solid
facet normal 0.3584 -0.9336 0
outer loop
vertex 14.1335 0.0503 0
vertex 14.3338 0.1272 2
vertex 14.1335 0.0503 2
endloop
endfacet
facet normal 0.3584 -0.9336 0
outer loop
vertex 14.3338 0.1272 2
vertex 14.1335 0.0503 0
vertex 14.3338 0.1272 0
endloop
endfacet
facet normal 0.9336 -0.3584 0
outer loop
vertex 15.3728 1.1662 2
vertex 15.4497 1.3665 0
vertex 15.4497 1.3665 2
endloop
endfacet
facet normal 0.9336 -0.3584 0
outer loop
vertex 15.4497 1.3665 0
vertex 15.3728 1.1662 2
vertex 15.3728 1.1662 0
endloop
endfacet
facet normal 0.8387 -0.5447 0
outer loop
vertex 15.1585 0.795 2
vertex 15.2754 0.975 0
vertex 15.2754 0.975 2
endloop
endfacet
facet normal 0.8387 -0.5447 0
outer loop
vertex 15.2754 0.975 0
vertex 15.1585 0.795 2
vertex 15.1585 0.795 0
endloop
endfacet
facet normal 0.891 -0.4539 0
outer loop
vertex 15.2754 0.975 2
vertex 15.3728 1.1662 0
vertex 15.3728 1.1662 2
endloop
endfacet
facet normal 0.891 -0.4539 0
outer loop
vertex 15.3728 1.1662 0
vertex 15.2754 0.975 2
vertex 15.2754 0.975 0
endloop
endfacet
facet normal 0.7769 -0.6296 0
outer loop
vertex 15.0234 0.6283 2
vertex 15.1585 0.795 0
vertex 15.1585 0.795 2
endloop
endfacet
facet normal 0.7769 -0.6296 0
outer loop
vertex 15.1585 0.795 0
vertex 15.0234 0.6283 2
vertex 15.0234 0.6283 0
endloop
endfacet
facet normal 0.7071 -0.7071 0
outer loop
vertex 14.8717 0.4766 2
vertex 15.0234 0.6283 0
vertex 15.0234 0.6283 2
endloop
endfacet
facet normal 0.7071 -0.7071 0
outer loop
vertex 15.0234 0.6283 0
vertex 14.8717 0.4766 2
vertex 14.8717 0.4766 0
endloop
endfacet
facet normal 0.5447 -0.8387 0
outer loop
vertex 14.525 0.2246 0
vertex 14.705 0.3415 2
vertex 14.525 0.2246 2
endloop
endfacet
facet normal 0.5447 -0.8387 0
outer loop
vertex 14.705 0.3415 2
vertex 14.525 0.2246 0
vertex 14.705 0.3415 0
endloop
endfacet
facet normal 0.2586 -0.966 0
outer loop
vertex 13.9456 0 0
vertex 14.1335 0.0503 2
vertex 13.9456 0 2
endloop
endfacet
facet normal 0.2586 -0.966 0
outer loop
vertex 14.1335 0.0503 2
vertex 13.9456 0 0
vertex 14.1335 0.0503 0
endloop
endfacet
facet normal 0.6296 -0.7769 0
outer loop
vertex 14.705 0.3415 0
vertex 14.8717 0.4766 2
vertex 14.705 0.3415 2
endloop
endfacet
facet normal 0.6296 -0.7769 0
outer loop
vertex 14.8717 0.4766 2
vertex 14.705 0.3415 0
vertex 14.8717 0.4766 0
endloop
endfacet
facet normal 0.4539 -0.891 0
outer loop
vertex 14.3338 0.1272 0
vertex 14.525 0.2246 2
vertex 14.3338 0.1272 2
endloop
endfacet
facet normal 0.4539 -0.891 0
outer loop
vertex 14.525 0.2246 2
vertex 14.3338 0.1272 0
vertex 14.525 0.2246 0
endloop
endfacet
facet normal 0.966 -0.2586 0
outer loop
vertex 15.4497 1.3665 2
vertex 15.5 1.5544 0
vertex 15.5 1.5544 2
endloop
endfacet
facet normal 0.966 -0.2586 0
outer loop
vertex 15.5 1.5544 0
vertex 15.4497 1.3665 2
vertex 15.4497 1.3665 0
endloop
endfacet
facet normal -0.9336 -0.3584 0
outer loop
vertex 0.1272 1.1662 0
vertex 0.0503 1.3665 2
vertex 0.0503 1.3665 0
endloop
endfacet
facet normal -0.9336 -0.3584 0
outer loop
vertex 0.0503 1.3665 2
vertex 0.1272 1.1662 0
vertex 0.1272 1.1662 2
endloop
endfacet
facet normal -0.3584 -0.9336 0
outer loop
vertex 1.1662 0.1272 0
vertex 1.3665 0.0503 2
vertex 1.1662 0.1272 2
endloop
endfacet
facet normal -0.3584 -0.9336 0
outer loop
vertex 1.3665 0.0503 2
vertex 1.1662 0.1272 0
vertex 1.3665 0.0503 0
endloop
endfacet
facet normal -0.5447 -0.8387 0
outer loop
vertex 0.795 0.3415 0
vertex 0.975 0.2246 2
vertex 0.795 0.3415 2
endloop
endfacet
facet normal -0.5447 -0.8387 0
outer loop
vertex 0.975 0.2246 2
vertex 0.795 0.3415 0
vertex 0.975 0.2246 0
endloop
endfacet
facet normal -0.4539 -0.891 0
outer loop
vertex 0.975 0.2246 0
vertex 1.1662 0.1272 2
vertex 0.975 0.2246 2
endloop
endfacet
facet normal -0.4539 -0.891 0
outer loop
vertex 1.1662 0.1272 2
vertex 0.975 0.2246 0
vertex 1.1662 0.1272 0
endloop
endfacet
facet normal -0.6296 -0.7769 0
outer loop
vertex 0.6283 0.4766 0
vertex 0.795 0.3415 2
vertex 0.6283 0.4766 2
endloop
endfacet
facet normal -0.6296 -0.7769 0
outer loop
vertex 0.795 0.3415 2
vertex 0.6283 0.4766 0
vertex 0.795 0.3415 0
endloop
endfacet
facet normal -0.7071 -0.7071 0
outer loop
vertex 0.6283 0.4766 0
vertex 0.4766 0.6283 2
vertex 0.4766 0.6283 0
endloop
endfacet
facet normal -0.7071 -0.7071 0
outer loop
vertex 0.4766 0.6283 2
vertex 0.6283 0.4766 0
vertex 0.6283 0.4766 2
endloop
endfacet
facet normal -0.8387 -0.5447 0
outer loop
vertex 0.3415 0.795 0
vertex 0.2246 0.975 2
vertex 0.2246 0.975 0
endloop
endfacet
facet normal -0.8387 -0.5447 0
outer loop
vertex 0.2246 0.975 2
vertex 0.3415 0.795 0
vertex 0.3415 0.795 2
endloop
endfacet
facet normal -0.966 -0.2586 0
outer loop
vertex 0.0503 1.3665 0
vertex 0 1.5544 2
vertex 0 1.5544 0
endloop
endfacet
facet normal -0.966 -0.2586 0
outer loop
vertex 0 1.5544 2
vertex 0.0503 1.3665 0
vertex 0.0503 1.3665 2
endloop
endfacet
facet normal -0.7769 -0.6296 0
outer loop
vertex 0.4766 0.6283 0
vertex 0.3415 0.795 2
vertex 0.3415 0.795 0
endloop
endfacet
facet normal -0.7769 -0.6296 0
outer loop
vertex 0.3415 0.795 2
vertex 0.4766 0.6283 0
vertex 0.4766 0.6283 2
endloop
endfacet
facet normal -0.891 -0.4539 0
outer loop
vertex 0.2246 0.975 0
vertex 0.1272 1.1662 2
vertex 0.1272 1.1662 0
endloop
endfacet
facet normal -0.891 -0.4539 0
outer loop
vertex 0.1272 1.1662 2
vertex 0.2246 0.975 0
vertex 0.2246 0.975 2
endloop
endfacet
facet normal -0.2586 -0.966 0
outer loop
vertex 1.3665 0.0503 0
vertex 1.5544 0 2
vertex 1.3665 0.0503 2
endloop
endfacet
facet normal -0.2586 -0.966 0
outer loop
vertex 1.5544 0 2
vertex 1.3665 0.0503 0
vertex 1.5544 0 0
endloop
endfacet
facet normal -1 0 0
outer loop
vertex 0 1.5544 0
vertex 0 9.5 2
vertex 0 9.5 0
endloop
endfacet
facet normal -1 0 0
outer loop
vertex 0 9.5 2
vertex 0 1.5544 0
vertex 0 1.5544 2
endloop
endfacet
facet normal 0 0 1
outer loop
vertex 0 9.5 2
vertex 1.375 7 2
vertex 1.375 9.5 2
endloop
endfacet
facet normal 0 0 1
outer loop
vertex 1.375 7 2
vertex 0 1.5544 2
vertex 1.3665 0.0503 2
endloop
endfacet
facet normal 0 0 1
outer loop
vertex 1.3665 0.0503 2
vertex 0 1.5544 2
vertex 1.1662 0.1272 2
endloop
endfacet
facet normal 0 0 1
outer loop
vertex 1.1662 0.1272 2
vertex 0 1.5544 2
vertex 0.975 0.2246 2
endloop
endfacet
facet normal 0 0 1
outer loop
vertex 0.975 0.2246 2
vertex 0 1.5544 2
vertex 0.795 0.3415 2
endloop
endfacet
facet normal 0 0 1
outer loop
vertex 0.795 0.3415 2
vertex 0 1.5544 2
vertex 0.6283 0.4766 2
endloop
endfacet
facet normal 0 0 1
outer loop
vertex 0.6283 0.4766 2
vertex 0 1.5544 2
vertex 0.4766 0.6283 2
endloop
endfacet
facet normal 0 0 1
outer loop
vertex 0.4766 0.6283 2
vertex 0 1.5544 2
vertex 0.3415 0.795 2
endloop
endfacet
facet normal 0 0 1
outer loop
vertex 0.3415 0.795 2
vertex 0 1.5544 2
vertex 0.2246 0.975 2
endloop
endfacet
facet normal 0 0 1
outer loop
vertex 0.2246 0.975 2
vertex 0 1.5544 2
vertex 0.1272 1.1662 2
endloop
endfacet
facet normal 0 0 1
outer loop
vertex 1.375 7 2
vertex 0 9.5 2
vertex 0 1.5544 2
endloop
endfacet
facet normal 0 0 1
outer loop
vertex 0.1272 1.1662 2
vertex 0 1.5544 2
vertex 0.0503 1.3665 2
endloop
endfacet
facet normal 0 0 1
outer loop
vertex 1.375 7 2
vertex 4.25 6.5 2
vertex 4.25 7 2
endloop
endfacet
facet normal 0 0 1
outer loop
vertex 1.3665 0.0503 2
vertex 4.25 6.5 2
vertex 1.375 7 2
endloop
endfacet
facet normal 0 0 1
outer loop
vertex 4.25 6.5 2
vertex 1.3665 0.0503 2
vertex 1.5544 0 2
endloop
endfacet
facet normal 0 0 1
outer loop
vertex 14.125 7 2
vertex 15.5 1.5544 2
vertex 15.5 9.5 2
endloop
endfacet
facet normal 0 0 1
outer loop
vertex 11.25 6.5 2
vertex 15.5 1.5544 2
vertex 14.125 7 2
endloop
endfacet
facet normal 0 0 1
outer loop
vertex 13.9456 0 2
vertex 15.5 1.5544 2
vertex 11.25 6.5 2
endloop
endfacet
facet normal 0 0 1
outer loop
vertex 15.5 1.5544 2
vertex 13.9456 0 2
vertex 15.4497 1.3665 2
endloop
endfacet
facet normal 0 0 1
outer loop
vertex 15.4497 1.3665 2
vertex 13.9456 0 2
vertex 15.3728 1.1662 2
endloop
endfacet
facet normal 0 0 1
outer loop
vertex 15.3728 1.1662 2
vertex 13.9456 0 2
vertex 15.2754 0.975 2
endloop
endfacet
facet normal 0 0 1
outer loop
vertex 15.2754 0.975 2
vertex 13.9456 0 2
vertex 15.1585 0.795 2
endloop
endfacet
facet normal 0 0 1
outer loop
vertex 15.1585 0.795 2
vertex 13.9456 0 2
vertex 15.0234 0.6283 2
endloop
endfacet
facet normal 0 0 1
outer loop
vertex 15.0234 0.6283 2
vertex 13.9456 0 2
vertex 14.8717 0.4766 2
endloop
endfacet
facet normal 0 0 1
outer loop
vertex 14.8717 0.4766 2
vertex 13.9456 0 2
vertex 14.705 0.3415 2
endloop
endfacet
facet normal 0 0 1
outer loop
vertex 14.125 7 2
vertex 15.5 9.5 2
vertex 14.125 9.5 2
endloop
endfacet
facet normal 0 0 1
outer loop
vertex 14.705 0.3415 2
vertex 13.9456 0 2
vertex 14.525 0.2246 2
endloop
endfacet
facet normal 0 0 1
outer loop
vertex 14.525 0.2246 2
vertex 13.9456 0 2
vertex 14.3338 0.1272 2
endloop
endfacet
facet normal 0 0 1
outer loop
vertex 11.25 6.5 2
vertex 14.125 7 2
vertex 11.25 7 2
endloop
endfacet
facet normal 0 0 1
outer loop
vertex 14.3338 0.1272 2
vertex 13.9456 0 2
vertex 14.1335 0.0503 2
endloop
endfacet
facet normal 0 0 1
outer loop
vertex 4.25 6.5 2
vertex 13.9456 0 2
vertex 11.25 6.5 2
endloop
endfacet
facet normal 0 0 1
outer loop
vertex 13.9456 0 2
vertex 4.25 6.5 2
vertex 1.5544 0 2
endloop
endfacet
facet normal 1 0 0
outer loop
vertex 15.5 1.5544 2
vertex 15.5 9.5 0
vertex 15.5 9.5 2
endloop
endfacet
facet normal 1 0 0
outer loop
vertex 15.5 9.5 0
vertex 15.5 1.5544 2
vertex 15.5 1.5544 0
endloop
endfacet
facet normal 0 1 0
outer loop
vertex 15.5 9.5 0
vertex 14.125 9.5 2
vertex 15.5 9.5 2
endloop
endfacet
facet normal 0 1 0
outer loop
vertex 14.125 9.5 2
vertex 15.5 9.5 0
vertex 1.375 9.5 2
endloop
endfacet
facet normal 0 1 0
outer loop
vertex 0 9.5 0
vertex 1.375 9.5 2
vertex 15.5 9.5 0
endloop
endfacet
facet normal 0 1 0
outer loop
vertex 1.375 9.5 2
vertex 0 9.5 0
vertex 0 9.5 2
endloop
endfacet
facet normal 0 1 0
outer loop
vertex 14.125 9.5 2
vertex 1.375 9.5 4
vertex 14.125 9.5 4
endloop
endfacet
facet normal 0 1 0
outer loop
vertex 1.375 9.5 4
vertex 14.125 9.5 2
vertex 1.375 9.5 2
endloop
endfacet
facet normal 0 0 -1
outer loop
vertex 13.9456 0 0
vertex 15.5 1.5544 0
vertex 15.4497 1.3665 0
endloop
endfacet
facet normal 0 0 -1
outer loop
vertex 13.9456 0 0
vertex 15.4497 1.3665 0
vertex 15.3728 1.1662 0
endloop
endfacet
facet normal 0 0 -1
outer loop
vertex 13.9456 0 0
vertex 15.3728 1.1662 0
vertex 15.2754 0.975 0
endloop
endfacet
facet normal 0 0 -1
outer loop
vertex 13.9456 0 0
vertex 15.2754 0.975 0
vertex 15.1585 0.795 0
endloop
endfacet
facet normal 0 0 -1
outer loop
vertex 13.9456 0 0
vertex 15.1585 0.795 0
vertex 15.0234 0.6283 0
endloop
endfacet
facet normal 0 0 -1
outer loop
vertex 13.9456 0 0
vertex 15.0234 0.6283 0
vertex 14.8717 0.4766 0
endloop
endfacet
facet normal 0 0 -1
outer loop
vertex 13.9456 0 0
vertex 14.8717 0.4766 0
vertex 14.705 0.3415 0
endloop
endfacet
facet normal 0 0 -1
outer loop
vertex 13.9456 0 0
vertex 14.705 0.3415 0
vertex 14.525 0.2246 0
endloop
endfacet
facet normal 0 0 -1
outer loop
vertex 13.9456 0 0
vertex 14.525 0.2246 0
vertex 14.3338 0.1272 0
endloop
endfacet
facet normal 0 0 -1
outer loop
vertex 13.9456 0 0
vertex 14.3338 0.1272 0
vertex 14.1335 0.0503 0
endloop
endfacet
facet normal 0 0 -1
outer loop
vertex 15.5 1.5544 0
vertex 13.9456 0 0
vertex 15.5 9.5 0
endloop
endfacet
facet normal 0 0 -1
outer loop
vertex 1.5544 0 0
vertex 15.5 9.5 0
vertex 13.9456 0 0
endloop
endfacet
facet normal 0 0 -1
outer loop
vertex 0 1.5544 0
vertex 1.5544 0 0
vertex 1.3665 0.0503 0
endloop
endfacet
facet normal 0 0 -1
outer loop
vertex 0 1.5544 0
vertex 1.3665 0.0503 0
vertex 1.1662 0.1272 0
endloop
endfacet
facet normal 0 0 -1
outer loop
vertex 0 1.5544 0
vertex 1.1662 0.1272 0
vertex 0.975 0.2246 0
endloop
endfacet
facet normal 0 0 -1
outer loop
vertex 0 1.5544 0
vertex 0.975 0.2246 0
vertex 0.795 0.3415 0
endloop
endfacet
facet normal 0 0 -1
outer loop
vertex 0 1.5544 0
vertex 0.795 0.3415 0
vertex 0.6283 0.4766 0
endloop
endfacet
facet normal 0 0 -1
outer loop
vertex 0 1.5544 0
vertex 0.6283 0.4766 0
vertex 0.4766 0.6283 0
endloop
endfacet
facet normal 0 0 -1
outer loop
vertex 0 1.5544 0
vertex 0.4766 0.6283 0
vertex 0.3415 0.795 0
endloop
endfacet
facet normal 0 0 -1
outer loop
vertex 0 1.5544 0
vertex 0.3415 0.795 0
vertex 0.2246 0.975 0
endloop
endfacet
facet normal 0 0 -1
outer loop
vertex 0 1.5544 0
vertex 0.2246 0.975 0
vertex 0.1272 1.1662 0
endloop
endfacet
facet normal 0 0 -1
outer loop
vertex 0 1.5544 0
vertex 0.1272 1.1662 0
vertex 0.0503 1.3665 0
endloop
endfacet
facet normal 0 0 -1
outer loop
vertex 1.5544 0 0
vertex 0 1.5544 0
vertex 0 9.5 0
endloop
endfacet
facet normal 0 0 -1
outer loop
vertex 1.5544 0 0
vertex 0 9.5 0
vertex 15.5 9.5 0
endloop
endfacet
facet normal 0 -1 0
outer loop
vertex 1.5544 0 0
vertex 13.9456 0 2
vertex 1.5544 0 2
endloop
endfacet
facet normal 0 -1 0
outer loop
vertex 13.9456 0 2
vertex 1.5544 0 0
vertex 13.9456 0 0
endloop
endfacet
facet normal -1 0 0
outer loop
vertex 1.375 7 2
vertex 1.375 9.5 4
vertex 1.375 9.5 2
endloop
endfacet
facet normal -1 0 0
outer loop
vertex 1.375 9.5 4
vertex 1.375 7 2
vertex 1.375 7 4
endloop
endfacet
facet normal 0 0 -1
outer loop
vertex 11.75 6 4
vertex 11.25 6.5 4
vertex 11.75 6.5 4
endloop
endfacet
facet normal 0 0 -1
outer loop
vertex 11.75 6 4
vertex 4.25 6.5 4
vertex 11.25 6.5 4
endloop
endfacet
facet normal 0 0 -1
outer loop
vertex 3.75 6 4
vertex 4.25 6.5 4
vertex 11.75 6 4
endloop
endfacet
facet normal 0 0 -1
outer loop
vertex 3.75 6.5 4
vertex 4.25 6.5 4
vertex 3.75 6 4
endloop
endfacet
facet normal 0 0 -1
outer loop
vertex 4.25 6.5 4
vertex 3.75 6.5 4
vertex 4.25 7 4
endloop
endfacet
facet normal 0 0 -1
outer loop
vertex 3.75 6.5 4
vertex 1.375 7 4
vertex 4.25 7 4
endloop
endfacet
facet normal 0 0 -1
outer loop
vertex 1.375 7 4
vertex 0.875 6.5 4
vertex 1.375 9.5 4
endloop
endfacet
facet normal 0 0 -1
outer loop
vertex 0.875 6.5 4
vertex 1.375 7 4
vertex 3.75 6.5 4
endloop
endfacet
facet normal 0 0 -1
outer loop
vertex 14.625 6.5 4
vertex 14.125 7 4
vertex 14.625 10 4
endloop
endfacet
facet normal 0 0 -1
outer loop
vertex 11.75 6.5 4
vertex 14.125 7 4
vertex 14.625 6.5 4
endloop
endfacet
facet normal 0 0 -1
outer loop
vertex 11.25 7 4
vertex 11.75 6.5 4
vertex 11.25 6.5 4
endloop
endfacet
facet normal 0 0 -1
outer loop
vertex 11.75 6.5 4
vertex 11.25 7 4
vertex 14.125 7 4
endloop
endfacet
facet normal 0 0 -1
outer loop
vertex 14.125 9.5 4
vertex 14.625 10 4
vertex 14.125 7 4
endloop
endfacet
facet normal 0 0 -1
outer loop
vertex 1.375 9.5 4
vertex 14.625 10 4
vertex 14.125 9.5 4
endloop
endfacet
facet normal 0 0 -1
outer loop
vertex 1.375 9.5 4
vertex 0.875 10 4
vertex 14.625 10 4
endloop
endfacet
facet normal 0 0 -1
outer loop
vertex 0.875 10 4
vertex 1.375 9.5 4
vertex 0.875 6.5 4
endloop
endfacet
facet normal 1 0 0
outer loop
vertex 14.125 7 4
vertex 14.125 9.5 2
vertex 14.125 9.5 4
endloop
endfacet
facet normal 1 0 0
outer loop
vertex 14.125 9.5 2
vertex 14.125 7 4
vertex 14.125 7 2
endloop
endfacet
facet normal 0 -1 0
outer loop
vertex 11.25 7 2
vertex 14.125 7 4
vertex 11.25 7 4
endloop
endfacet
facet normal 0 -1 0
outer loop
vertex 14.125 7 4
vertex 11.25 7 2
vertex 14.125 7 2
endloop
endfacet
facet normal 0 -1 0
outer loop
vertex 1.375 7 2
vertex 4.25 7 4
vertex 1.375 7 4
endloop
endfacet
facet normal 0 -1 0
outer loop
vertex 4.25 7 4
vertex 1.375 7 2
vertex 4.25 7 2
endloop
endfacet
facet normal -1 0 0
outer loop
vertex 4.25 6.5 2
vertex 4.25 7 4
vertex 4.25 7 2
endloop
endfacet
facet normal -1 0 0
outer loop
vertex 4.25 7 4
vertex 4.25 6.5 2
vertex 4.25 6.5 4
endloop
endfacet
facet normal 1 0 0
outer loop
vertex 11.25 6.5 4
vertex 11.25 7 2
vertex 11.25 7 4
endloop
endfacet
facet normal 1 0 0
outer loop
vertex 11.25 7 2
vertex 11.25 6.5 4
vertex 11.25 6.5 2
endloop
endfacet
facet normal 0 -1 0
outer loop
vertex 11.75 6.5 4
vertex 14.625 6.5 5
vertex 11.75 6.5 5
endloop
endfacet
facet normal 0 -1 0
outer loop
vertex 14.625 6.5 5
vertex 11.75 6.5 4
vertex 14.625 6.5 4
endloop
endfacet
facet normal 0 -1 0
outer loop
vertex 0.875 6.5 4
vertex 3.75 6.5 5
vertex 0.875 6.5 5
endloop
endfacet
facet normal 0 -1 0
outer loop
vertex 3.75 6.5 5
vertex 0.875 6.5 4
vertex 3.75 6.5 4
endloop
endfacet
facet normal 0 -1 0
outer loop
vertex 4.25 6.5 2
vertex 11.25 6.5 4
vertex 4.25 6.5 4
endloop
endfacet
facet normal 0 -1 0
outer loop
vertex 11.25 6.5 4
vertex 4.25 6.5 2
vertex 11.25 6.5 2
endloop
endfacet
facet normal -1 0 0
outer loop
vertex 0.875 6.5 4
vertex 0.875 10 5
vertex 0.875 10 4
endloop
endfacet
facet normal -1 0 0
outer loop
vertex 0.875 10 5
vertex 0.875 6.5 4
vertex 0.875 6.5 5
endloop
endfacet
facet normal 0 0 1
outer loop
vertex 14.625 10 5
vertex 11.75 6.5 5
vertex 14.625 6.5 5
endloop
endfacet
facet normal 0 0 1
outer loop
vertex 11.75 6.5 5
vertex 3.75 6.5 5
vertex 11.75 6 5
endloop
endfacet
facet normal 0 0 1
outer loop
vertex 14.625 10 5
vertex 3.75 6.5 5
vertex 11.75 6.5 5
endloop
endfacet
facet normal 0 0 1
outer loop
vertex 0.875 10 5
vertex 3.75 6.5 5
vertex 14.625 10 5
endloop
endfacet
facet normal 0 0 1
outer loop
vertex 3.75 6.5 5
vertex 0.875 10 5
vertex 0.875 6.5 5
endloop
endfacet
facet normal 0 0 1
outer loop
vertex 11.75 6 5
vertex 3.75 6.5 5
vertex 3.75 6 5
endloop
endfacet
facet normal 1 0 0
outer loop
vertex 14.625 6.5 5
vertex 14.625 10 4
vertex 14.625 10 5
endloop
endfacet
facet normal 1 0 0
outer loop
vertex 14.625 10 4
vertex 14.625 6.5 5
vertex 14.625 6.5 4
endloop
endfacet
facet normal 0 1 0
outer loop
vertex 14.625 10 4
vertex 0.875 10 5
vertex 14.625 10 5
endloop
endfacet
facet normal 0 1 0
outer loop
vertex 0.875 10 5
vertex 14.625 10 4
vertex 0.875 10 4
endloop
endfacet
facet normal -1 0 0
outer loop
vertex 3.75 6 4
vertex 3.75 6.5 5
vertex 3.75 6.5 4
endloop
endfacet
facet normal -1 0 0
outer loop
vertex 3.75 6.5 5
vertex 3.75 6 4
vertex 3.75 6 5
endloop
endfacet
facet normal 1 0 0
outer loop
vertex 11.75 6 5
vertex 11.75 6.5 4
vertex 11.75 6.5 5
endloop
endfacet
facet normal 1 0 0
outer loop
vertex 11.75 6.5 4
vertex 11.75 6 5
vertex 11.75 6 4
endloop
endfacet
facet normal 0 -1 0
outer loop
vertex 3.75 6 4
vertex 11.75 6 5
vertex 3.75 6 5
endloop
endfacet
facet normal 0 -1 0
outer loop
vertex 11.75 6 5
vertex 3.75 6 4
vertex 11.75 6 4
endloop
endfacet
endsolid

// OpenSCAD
$fn = 60;

plate_size = [15.5, 9.5, 2];
hole_size = [12.75, 2.5, 2];
hole_amend_size = [7, 0.5, hole_size[2]];

fix = .0000001;

module fillet(length=10, r=2) {
    difference() {
        cube([length, r, r]);

        translate([0, r, r])
        rotate([0, 90, 0])
            translate([0, 0, -1])
            cylinder(r=r, h=length+2);
    }
}

difference () {
    cube(plate_size);
    
    translate([-.05, -.05, plate_size[2]+1])
    rotate([0, 90, 0])
        fillet(length=plate_size[2]+2, r=2.05);
    
    translate([plate_size[0]+.05, -.05, plate_size[2]+1])
    rotate([0, 90, 90])
        fillet(length=plate_size[2]+2, r=2.05);
}

translate([(plate_size[0]-hole_size[0])/2, plate_size[1]-hole_size[1], plate_size[2]])
    cube(hole_size);

translate([(plate_size[0]-hole_amend_size[0])/2, plate_size[1]-hole_size[1]-hole_amend_size[1], plate_size[2]])
    cube(hole_amend_size);

translate([(plate_size[0]-hole_size[0]-1)/2, plate_size[1]-hole_size[1]-.5, plate_size[2]+hole_size[2]])
    cube([hole_size[0]+1, hole_size[1]+1, 1]);

translate([(plate_size[0]-hole_amend_size[0]-1)/2, plate_size[1]-hole_size[1]-hole_amend_size[1]-.5, plate_size[2]+hole_size[2]])
    cube([hole_amend_size[0]+1, hole_amend_size[1], 1]);
